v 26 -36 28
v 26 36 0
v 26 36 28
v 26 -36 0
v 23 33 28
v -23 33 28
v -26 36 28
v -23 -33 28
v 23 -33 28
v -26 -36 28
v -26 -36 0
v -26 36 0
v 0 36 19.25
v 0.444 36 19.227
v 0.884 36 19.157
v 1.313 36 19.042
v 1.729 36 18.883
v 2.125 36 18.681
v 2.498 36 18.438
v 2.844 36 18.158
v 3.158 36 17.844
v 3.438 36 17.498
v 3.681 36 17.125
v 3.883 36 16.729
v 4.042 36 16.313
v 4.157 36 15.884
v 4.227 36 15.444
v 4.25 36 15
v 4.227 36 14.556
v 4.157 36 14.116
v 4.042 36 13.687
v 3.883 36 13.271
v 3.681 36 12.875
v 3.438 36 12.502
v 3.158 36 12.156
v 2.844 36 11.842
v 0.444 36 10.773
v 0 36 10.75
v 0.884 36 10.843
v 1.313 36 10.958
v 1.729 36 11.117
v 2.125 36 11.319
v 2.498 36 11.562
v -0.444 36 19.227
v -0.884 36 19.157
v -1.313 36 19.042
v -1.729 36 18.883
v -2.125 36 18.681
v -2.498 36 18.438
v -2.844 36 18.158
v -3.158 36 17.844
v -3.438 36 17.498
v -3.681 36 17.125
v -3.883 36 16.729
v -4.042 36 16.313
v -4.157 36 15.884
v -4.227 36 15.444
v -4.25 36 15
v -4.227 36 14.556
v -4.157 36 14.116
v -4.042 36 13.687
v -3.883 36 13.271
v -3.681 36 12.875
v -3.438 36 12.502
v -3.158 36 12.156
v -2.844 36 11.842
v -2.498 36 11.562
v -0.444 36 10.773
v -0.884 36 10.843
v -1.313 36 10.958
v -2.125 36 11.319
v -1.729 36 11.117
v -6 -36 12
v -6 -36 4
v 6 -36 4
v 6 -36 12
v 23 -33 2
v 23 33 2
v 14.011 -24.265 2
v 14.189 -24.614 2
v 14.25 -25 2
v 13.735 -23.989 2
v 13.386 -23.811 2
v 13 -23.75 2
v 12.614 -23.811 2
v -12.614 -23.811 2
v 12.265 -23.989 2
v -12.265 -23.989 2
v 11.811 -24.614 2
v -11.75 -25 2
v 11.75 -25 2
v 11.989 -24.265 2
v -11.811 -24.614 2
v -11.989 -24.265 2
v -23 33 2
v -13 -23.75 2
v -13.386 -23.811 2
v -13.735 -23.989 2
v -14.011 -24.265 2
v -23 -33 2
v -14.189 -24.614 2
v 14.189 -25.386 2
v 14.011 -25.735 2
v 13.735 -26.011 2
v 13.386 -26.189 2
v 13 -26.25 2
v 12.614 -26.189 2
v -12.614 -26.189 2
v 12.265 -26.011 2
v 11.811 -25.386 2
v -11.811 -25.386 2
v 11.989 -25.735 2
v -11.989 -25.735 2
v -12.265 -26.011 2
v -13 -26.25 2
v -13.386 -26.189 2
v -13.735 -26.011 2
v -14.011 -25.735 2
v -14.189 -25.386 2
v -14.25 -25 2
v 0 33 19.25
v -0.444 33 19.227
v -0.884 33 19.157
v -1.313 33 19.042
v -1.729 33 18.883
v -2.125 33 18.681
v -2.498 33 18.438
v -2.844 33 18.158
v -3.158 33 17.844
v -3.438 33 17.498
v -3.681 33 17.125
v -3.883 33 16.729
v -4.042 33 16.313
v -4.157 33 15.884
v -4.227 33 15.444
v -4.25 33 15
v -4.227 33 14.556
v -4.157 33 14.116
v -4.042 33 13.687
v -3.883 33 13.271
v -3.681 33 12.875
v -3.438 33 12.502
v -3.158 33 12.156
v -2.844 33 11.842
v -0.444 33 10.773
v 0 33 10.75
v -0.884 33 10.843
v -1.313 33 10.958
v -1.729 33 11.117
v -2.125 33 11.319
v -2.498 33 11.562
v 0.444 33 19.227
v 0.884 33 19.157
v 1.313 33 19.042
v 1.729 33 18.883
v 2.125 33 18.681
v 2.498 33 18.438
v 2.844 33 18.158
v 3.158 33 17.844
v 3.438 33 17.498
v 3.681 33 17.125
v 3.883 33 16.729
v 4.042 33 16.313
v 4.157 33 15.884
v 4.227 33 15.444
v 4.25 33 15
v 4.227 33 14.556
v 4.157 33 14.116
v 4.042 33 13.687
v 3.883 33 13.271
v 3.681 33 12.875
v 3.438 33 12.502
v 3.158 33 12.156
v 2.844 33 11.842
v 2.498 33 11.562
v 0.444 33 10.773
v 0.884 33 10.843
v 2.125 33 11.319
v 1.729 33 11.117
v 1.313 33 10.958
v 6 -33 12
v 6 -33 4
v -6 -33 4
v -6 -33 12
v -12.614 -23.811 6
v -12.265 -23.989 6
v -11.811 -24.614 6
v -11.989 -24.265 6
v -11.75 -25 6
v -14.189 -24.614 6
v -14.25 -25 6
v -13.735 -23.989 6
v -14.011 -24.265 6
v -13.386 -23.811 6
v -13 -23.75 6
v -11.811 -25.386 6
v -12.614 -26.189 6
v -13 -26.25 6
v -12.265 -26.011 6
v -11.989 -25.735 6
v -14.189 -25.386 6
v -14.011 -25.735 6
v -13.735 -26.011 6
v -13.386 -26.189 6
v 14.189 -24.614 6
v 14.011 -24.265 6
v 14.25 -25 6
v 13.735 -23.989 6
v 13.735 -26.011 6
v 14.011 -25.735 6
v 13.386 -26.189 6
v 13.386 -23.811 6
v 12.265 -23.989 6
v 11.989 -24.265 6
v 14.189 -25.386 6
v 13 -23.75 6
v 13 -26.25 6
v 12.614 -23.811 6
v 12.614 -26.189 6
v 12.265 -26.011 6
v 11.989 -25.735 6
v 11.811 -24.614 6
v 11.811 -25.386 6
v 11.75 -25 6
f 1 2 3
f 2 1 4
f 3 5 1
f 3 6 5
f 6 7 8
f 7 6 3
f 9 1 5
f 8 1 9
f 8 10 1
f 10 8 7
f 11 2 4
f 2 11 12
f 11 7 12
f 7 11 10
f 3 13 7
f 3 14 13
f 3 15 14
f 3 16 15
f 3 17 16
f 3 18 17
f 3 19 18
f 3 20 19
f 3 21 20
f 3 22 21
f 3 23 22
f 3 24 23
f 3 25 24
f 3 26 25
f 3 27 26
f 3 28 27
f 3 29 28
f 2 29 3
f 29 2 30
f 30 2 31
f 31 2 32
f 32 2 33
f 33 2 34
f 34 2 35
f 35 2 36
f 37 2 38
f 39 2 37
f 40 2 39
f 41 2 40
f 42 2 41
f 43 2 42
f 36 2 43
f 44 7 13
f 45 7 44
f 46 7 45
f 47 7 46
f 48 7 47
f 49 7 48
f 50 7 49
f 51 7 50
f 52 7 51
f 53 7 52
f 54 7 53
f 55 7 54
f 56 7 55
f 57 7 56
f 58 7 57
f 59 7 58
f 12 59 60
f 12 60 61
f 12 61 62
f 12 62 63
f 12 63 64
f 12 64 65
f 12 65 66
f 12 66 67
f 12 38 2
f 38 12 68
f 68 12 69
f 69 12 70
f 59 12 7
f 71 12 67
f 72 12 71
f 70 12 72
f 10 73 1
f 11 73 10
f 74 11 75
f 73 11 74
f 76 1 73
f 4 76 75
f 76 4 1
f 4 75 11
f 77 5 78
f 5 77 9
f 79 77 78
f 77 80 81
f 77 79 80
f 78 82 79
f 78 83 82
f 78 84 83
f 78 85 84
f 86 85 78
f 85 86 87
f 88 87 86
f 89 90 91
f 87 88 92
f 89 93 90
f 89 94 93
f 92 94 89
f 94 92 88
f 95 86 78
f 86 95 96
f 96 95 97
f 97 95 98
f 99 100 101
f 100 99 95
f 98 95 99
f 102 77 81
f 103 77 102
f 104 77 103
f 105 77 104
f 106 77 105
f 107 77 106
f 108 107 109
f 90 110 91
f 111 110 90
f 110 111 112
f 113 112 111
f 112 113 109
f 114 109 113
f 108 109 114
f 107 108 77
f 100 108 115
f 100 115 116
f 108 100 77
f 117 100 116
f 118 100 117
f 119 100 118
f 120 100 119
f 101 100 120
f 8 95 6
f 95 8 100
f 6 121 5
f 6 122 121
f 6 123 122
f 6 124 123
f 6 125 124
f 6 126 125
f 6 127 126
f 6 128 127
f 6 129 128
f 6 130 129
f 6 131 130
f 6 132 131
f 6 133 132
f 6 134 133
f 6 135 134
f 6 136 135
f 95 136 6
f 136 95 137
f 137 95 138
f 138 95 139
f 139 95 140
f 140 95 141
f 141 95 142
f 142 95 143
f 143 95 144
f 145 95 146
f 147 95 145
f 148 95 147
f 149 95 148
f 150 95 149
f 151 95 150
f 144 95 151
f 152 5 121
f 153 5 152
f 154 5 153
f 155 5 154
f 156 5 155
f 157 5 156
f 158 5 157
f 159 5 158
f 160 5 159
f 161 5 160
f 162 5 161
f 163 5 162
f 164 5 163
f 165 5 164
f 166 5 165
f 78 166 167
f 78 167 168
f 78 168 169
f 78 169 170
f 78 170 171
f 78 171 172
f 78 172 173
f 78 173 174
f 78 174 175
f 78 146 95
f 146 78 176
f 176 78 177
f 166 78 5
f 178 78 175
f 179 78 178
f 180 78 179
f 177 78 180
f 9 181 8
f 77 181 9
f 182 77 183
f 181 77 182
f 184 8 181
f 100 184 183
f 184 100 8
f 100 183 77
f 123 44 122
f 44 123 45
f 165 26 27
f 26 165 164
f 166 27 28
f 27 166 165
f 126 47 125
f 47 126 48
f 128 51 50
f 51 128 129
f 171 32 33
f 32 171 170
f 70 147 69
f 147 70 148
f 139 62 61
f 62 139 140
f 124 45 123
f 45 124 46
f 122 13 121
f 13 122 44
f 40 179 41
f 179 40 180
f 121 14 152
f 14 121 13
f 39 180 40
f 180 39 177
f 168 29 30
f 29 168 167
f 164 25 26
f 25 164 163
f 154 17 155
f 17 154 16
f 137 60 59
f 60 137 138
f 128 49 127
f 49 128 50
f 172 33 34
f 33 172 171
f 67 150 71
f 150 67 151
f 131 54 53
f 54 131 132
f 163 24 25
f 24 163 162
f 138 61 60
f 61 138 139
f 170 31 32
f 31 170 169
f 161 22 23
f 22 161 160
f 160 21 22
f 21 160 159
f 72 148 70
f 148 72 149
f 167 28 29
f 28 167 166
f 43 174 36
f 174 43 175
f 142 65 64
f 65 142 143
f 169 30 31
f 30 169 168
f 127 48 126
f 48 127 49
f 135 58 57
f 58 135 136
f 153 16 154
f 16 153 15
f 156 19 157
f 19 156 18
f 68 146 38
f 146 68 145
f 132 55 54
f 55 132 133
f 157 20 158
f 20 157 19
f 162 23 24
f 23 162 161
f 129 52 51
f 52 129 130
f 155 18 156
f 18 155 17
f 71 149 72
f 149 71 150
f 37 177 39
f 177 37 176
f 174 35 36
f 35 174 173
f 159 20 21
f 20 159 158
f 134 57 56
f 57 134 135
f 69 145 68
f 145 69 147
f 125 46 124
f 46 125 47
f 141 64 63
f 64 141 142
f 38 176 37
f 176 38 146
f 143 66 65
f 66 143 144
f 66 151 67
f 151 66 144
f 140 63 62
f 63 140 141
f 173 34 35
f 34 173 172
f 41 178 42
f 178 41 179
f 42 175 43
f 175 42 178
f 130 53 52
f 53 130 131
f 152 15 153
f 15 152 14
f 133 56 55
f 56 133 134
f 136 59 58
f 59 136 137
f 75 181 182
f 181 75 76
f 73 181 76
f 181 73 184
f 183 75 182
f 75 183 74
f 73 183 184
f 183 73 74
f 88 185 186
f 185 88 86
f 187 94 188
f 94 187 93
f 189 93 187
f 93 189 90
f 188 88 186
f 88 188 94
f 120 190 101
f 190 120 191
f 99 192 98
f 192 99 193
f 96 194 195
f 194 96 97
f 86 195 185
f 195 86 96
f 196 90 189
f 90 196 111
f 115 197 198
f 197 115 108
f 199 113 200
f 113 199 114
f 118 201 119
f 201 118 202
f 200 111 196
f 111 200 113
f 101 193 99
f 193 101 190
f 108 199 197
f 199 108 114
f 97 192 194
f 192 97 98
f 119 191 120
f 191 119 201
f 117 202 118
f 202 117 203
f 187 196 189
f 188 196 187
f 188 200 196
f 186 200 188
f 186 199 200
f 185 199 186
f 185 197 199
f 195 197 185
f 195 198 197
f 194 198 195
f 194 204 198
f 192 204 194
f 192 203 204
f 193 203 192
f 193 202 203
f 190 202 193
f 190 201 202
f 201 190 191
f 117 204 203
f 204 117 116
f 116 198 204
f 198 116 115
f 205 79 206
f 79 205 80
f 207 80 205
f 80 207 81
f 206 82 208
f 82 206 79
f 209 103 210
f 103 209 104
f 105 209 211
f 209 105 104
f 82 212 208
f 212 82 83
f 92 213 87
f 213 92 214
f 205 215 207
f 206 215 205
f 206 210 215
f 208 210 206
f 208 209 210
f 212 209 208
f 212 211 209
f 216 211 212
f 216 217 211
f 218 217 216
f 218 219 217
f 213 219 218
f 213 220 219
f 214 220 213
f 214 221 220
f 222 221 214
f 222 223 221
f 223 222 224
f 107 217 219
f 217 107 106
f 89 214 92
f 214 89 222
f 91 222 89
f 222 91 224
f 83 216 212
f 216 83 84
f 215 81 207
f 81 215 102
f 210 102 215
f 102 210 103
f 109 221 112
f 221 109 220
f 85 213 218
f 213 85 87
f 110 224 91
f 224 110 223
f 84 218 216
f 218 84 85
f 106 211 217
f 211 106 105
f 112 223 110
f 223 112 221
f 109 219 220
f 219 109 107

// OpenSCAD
// V43 Hub Chassis - Tiered Internal Layout
module v43_hub() {
    difference() {
        // Outer Shell
        translate([-26, -36, 0]) cube([52, 72, 28]);

        // Main Internal Cavity
        translate([-23, -33, 2]) cube([46, 66, 28]);

        // Tier 1: ESP32 DevKit Deck (Bottom)
        translate([-15, -26, 2]) cube([30, 52, 6]);

        // Tier 2: Component Shelf (Mux & Drivers)
        translate([-21, -31, 12]) cube([42, 30, 6]);

        // Front Port: 3.5mm TRRS Jack Hole
        translate([0, 36, 15]) rotate([90, 0, 0]) cylinder(d=8.5, h=10, $fn=60);

        // Rear Port: USB-C Power Access
        translate([-6, -36, 4]) cube([12, 10, 8]);
    }

    // Mounting Pegs for Boards
    translate([-13, -25, 2]) cylinder(d=2.5, h=4, $fn=20);
    translate([13, -25, 2]) cylinder(d=2.5, h=4, $fn=20);
}

v43_hub();
